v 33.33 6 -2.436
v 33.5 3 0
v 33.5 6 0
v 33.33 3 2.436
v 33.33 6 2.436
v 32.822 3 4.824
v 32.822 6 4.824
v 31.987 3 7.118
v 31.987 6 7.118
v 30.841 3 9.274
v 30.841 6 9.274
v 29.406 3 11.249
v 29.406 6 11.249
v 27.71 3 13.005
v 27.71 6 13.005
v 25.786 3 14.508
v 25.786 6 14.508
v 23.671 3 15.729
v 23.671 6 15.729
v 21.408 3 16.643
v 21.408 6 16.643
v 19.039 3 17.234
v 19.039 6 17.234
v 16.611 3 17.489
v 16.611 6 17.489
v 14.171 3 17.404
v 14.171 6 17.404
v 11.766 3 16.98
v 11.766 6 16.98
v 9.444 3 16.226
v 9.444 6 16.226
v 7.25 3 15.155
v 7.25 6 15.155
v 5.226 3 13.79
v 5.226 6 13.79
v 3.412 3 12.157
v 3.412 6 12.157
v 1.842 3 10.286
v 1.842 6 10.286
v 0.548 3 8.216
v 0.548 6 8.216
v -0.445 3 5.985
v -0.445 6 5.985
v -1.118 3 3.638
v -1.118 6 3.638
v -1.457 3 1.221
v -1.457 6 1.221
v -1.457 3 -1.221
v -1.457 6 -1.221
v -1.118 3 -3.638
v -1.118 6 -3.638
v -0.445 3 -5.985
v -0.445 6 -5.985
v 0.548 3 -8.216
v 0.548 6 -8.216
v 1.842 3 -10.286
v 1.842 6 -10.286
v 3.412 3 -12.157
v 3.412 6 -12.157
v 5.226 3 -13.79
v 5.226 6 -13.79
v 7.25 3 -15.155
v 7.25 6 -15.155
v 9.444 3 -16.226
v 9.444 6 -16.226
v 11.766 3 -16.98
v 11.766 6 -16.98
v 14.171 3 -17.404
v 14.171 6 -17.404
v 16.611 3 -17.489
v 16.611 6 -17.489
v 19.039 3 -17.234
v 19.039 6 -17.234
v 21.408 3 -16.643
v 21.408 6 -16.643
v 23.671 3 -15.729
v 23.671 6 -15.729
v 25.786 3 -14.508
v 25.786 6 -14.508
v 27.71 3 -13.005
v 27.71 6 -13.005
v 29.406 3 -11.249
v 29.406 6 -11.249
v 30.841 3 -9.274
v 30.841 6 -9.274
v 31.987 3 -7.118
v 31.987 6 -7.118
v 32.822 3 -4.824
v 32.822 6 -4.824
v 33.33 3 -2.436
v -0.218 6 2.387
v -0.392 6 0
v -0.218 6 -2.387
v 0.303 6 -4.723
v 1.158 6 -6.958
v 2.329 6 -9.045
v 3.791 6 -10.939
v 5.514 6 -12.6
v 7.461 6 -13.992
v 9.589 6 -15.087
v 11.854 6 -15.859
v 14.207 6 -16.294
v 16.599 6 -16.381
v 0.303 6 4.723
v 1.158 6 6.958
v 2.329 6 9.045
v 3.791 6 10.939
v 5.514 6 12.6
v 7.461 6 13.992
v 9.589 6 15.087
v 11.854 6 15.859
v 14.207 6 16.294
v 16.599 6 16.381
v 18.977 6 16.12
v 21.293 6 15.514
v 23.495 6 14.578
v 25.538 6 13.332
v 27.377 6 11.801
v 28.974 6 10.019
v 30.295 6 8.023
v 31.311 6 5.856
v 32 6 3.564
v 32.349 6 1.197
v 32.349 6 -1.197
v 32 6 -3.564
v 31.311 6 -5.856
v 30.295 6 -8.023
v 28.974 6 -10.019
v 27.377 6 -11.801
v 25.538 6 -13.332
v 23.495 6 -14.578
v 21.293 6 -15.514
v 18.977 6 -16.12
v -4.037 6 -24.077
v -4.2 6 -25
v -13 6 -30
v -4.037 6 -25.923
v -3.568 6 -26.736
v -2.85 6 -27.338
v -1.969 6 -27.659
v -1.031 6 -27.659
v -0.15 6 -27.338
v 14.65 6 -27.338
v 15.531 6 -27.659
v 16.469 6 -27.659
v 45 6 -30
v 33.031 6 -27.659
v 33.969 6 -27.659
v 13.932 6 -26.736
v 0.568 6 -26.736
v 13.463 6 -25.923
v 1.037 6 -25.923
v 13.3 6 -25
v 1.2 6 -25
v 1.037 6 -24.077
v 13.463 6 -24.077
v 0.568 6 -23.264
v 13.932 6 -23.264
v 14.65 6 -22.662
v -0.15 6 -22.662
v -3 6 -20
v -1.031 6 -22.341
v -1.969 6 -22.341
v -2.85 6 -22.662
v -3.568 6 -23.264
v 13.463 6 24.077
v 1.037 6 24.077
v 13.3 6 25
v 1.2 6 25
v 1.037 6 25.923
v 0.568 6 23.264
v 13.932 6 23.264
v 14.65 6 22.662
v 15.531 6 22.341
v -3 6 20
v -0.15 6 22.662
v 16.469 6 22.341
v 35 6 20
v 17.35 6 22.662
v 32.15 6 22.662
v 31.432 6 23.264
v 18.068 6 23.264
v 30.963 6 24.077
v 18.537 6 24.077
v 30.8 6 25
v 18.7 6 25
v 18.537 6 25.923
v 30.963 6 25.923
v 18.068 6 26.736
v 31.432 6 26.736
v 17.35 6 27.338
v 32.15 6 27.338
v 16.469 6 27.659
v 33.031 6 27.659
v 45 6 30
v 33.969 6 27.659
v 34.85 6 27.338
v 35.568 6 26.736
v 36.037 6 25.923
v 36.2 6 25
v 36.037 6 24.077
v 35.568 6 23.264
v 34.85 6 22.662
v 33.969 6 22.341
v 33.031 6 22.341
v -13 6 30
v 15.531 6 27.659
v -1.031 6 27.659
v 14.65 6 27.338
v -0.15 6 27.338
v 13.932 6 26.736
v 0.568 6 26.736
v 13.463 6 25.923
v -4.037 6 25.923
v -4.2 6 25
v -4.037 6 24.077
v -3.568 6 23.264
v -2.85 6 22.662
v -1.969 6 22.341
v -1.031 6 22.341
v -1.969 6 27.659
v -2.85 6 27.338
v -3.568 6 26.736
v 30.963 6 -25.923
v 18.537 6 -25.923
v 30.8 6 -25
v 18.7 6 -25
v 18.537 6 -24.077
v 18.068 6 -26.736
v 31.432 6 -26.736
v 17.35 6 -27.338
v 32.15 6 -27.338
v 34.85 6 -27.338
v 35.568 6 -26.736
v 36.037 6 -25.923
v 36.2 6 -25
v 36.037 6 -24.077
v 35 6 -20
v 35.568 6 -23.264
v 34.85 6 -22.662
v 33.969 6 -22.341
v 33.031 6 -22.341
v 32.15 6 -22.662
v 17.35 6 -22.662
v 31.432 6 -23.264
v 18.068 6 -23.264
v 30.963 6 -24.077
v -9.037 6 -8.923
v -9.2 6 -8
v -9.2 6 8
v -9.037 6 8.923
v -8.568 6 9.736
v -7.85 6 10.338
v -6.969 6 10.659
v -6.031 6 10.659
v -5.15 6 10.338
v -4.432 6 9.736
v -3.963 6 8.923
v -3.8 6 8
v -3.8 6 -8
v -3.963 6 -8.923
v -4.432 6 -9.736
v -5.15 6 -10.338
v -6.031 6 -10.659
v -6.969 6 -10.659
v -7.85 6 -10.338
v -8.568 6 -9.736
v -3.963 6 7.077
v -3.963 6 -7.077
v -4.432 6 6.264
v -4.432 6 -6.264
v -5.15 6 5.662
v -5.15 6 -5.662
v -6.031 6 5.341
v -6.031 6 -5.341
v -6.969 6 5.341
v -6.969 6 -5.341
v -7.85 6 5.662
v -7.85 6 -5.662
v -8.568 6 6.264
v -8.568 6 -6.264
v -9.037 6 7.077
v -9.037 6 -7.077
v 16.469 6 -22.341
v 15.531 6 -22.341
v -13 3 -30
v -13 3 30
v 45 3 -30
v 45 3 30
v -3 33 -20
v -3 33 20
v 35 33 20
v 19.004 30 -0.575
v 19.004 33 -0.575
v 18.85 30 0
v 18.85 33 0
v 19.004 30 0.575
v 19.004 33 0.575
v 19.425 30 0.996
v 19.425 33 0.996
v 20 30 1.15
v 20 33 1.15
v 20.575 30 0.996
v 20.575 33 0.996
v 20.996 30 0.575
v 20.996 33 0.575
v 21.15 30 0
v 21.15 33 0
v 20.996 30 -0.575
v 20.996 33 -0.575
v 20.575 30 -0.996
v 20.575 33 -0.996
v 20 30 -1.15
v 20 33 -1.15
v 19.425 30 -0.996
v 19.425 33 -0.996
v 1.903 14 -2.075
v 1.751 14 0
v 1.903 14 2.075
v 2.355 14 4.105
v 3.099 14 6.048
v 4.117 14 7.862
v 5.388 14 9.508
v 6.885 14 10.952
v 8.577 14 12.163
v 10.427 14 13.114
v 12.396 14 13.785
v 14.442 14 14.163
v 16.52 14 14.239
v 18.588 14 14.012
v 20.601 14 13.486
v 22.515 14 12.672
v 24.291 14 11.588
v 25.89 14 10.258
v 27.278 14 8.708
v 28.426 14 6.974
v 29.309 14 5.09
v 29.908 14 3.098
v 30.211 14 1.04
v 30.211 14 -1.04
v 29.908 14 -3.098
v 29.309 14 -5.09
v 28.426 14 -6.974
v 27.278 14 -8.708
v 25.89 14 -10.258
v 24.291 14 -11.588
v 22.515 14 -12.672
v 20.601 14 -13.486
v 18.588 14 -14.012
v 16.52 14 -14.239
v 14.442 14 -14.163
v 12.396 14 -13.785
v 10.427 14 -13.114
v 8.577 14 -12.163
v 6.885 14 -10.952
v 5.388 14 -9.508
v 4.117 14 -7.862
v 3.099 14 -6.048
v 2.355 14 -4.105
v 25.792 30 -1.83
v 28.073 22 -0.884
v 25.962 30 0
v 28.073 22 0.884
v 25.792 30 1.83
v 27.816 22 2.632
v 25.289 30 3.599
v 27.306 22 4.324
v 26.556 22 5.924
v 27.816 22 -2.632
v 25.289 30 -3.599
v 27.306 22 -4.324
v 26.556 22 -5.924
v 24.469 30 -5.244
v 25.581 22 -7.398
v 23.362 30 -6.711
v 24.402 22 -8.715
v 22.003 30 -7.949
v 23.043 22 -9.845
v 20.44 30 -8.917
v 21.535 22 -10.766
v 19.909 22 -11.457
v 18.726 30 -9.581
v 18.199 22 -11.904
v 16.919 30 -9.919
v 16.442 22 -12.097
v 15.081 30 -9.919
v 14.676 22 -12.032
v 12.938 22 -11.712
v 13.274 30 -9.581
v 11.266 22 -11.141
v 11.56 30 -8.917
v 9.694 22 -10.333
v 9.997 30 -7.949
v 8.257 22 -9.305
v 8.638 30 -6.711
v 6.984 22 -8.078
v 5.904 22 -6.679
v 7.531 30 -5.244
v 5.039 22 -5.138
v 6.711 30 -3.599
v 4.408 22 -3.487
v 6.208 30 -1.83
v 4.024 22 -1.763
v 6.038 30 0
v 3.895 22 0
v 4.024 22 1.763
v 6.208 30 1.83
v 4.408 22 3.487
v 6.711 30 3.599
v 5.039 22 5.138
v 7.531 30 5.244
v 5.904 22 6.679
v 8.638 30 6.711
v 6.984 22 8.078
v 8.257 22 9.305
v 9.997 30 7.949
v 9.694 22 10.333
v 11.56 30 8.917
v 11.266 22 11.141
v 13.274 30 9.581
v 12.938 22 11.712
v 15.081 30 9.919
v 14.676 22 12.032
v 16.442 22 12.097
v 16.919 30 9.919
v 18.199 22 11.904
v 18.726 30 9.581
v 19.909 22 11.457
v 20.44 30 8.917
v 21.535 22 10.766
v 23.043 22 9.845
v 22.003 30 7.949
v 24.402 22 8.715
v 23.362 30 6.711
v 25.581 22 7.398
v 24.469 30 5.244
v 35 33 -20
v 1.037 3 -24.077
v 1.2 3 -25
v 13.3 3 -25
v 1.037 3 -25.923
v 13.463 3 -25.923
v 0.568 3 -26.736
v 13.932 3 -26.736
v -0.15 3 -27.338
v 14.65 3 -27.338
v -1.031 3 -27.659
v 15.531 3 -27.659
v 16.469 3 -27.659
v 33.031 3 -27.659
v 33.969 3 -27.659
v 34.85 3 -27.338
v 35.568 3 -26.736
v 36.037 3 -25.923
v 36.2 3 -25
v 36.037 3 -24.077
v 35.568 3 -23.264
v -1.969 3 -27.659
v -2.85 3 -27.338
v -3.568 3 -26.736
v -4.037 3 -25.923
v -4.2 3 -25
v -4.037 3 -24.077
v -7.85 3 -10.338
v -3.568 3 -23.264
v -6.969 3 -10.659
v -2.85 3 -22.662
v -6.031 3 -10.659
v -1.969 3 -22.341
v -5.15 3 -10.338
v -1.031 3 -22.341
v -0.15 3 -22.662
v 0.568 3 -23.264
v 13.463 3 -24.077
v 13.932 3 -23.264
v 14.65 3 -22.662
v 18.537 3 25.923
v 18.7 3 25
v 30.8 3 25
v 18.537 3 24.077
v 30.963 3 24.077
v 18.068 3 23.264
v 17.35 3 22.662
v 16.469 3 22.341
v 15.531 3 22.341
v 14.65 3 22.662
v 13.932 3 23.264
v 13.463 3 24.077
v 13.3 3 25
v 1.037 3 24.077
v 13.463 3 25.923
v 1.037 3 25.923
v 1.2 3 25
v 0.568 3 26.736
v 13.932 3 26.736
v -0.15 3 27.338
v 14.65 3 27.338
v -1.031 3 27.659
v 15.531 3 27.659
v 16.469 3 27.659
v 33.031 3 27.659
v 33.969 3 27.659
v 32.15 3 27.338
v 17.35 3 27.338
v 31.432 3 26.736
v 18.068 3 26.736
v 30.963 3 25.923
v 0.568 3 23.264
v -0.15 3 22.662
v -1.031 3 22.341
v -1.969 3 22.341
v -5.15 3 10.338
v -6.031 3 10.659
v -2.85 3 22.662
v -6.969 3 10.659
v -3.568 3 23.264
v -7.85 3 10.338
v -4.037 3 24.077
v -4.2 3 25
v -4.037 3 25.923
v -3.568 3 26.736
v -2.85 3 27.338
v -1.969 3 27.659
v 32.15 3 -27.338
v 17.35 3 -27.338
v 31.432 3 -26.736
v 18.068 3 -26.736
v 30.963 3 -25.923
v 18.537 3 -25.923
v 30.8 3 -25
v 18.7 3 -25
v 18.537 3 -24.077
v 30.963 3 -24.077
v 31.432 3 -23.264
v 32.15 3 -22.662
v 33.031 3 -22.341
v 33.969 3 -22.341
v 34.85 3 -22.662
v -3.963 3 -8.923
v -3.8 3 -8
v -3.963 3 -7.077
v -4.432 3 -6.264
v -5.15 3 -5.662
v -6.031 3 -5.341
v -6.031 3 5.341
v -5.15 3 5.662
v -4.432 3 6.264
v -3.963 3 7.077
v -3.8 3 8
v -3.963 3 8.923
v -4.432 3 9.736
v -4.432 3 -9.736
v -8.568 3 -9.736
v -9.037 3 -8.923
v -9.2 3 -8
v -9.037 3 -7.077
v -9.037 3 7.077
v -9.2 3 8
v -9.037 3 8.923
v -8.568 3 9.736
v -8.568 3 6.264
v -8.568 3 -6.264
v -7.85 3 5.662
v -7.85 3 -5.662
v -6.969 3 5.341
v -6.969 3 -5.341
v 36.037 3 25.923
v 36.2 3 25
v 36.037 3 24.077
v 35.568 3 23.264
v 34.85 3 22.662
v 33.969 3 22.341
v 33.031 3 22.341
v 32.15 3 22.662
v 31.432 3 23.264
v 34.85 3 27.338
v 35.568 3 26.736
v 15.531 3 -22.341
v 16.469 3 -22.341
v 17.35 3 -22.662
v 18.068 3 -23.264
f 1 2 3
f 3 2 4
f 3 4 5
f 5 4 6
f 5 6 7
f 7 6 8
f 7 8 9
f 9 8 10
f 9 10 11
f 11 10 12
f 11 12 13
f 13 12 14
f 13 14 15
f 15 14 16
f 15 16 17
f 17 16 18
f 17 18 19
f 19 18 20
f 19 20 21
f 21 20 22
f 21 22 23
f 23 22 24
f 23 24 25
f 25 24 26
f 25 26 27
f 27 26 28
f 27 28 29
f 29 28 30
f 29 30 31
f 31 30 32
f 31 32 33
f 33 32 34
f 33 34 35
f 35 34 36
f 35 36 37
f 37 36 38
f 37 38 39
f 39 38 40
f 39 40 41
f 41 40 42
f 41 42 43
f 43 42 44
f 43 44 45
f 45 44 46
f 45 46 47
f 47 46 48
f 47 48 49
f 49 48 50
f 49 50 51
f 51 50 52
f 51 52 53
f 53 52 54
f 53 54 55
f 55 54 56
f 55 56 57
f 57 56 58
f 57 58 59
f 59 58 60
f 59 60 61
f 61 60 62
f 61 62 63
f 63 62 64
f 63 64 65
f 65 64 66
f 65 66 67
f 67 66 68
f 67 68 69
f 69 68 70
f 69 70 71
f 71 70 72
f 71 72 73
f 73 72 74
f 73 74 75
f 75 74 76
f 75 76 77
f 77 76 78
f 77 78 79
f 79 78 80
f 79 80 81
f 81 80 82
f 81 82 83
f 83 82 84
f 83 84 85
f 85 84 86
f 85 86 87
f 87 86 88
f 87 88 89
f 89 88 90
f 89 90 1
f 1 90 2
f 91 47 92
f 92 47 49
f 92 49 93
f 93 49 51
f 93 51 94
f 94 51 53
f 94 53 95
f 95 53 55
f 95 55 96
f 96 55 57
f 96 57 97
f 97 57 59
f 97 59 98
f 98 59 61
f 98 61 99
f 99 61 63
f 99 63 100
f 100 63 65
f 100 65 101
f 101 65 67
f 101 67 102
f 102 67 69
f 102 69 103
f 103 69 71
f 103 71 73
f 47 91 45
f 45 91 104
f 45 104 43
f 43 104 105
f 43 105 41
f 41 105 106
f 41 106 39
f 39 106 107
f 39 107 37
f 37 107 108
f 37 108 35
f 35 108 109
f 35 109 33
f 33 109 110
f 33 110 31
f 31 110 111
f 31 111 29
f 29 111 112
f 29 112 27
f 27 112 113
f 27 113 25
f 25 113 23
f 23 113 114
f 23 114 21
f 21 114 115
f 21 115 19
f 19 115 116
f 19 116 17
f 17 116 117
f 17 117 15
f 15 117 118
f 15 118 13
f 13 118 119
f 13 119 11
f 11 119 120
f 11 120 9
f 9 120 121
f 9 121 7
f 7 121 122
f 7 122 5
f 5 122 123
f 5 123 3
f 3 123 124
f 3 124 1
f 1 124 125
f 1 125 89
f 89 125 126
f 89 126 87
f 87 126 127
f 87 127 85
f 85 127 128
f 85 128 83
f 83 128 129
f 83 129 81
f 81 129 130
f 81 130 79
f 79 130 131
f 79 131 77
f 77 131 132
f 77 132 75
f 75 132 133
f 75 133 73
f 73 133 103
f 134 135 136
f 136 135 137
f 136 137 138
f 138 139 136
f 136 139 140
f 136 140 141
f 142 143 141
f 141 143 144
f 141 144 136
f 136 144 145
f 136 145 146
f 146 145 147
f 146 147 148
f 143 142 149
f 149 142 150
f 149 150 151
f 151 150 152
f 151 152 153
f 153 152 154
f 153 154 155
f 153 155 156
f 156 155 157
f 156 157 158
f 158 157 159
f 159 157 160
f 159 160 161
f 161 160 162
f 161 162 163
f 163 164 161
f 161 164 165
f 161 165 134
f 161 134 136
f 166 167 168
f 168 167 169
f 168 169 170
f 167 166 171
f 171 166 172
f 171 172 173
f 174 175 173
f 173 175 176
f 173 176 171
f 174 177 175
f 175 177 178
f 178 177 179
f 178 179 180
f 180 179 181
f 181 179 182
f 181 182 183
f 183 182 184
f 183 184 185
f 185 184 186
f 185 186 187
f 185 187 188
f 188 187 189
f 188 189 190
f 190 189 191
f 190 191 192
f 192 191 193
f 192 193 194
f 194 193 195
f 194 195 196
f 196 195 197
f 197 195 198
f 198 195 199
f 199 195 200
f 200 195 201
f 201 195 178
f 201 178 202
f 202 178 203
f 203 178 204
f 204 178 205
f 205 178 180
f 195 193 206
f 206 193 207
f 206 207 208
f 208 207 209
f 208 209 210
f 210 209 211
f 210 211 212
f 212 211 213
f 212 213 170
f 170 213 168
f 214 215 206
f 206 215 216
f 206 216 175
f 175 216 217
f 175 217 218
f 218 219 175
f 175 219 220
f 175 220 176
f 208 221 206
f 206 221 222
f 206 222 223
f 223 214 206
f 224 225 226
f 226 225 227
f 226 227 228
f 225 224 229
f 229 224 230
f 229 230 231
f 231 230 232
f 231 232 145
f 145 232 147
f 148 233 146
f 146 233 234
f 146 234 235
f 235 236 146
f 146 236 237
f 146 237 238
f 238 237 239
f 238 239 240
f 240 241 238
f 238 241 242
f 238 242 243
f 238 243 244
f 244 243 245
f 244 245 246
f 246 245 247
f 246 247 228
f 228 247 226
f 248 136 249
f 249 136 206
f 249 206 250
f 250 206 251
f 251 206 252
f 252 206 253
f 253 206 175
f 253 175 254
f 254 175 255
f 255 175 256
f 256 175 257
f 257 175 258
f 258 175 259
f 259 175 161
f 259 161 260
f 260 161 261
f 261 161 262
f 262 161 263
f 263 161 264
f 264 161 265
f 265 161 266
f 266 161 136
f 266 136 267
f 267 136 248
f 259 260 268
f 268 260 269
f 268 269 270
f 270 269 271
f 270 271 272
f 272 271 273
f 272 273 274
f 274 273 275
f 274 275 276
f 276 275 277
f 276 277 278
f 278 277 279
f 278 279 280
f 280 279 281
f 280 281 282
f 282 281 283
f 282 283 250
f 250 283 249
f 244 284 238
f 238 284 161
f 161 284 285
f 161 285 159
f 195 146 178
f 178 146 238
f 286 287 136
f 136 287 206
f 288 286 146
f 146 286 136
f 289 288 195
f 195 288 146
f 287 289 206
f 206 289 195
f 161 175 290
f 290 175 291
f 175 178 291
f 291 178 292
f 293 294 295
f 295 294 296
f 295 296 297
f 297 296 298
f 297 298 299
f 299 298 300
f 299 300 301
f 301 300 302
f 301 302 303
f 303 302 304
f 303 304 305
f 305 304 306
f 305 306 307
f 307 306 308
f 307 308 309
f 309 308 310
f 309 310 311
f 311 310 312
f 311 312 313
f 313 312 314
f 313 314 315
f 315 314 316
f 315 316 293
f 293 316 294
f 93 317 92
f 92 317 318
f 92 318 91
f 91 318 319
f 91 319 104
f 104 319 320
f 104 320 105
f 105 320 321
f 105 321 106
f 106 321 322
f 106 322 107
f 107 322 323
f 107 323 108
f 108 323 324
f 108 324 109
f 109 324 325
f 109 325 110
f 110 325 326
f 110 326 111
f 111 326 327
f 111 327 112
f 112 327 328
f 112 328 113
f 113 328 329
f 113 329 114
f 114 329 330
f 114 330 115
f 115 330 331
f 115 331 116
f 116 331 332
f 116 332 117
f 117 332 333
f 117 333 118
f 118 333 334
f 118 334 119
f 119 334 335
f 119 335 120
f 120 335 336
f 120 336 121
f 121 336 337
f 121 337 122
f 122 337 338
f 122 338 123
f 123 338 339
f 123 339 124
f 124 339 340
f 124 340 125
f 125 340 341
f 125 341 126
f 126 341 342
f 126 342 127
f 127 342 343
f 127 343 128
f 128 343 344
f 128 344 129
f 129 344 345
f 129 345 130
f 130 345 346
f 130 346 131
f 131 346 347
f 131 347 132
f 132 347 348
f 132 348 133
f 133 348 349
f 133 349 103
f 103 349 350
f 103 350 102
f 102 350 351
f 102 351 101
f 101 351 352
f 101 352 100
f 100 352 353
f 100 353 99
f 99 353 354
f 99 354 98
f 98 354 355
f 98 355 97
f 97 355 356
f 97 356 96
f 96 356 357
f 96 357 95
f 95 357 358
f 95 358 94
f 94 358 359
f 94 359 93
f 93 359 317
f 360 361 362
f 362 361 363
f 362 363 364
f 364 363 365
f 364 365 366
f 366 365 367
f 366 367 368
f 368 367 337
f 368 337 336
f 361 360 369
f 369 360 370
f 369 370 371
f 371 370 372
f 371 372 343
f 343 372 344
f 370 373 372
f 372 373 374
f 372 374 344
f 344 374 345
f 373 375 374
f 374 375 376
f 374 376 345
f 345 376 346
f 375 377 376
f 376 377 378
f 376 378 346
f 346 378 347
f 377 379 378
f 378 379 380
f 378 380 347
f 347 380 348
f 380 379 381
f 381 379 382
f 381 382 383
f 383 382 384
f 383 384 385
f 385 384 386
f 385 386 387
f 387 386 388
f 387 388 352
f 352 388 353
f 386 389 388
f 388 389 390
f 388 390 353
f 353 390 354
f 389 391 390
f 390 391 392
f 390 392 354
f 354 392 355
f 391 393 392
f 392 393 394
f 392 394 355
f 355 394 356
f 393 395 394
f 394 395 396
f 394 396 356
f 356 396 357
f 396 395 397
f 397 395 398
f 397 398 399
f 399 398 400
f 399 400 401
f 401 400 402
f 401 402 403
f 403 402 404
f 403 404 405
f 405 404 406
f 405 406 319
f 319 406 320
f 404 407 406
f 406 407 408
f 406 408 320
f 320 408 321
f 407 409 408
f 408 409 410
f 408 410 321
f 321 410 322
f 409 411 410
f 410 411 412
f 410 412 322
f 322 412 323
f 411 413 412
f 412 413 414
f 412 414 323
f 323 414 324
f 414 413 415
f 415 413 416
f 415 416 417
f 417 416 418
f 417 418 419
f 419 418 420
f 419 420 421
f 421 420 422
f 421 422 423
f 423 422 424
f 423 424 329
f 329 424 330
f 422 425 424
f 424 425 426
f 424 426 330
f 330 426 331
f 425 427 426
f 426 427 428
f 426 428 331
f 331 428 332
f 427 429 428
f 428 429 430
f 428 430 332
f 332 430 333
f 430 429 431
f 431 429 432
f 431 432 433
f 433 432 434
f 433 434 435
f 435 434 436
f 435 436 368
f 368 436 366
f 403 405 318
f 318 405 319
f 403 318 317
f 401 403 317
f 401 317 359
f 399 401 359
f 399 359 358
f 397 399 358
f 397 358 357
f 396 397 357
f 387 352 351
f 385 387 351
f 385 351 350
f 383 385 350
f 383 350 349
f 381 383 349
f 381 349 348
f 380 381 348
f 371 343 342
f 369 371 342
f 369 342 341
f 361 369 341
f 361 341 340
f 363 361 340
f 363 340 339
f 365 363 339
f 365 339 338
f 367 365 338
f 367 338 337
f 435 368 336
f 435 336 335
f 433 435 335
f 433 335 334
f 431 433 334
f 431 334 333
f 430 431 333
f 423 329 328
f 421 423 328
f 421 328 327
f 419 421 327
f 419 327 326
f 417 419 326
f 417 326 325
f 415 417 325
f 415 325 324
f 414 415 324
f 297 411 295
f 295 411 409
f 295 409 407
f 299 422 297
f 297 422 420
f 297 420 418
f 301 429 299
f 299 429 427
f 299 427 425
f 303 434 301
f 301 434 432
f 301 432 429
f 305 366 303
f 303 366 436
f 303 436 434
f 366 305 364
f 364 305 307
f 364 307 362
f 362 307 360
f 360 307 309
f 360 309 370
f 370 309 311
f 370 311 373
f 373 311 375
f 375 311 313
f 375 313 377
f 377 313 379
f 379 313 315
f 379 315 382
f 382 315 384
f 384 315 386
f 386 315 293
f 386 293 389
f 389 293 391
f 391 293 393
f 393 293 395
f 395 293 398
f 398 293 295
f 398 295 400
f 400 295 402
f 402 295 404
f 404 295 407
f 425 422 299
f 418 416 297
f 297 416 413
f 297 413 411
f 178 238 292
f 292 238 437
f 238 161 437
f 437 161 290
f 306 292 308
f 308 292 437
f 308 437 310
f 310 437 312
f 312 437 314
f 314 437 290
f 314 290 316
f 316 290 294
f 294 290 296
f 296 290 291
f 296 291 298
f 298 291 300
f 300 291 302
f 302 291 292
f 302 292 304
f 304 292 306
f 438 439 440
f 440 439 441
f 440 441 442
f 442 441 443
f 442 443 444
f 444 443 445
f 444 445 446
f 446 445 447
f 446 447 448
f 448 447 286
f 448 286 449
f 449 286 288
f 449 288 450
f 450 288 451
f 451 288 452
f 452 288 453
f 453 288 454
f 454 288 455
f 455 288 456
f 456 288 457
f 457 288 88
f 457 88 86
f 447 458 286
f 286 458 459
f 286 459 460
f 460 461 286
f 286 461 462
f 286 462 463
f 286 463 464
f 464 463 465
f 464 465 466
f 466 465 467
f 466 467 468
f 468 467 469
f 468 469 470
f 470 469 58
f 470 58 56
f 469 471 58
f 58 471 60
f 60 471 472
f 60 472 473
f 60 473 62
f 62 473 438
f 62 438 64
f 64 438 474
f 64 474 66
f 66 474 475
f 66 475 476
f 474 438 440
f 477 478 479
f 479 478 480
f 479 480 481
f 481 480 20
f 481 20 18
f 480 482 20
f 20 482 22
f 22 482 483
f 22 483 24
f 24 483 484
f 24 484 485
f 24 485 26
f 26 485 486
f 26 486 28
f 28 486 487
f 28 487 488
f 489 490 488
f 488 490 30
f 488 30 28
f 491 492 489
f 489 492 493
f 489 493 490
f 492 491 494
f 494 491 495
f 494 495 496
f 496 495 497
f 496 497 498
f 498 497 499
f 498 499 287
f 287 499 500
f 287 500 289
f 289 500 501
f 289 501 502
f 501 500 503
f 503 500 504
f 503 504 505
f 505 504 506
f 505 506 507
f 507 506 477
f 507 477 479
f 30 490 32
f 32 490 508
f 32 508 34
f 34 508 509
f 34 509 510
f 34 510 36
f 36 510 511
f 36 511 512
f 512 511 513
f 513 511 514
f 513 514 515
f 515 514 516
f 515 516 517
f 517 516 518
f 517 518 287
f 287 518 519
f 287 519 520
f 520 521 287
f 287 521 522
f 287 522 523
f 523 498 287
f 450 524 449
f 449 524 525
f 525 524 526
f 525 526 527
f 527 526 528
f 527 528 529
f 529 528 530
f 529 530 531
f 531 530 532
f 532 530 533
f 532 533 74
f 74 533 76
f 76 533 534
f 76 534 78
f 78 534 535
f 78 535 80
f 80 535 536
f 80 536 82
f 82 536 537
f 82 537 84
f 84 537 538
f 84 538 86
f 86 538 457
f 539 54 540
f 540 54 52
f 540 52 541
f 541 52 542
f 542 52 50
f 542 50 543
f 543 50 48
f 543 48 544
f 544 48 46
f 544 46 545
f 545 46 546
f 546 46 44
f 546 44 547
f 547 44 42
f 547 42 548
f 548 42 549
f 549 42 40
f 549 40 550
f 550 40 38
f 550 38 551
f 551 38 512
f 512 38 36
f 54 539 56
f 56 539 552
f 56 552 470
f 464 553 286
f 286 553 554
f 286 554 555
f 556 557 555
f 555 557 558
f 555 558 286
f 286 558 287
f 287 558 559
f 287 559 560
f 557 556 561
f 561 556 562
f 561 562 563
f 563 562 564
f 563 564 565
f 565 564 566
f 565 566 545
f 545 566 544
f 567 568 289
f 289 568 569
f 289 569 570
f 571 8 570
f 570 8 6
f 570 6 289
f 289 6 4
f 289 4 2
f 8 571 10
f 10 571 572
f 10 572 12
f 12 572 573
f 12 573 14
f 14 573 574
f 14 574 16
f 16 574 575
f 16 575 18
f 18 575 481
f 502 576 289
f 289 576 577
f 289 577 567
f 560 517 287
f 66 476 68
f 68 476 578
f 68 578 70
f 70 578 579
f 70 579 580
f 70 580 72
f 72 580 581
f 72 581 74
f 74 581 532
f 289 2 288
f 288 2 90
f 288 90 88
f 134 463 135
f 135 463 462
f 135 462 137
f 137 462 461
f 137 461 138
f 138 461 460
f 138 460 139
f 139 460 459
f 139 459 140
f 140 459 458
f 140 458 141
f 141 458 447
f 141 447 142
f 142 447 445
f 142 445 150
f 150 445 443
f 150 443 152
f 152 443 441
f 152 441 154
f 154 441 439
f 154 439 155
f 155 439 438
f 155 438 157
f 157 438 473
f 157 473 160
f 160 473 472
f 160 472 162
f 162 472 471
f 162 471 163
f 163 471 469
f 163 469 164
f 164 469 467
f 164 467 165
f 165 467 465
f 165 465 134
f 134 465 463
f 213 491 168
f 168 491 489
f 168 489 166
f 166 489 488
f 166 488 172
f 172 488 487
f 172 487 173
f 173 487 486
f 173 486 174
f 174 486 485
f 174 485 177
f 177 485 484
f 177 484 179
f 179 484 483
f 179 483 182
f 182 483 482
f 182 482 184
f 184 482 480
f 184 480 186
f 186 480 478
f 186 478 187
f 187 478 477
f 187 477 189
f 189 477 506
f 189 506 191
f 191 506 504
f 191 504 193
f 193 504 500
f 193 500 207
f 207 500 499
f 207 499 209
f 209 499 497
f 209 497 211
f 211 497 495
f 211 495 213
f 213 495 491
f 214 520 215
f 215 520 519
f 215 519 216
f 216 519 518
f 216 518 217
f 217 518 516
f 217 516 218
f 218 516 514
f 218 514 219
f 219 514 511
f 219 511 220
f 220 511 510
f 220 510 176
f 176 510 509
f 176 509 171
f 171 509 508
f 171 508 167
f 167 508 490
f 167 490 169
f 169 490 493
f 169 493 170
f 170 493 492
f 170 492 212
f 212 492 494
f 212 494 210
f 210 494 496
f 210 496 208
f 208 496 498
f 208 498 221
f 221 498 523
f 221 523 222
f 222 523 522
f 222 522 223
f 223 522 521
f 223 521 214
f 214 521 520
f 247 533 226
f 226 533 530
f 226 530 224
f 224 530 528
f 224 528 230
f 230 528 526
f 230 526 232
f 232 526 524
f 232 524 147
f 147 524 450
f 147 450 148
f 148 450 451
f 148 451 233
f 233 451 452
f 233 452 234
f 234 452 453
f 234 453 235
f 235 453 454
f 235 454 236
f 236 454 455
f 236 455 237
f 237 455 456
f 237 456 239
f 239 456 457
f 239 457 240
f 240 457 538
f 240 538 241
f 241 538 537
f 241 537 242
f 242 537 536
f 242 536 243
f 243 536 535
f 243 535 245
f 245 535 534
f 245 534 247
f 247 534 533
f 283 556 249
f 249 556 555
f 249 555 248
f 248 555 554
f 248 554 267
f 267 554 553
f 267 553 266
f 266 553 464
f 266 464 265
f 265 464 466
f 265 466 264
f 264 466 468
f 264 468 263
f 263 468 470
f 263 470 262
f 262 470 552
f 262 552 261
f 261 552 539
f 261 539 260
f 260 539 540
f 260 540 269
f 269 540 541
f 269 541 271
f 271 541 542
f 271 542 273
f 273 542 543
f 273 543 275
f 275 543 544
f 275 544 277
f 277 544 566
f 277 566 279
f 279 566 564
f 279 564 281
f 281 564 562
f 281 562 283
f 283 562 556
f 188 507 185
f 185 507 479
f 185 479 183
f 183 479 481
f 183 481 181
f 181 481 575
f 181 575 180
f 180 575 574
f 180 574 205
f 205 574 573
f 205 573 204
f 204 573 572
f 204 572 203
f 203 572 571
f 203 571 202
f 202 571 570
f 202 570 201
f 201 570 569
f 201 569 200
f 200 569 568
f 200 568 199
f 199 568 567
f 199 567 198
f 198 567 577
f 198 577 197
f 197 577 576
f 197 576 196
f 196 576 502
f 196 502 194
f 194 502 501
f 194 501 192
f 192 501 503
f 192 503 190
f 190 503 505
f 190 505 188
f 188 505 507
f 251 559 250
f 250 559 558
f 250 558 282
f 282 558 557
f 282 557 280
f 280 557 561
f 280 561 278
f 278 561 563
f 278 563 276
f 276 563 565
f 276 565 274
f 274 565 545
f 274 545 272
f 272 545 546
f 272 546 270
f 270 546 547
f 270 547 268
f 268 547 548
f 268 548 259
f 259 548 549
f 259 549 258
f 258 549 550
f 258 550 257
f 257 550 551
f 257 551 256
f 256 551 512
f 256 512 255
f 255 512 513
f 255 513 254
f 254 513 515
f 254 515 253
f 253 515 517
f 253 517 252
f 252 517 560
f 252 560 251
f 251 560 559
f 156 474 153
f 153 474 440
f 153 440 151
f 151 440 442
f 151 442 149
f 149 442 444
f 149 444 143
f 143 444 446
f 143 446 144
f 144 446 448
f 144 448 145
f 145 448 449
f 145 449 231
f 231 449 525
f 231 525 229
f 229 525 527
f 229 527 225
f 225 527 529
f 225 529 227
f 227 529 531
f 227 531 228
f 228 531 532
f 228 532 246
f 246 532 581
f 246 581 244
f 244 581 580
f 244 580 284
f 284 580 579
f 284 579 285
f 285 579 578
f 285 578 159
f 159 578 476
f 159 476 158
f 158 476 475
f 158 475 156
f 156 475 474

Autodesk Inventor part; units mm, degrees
ref_plane "YZ Plane" through (0, 0, 0) normal (1, 0, 0) x (0, 1, 0)
ref_plane "XZ Plane" through (0, 0, 0) normal (0, 1, 0) x (-1, 0, 0)
ref_plane "XY Plane" through (0, 0, 0) normal (0, 0, 1) x (1, 0, 0)
ref_plane "Work Plane5" through (0, 3, 0) normal (0, 1, 0) x (1, 0, 0)
sketch "Sketch45" plane through (0, 3, 0) normal (0, 1, 0) x (1, 0, 0)
  line L0 (35, -20) -> (-3, -20)
  line L1 (-3, -20) -> (-3, 20)
  line L2 (-3, 20) -> (35, 20)
  line L3 (35, 20) -> (35, -20)
  point P0 (0, 0)
  dimension "d142" = 38
  dimension "d143" = 40
extrude "Extrusion34" add sketch "Sketch45" along normal blind 30
ref_plane "Work Plane2" through (0, 0, 0) normal (0, -1, 0) x (1, 0, 0)
sketch "Sketch47" plane through (0, 0, 0) normal (0, -1, 0) x (1, 0, 0)
  circle A0 centre (16, 0) radius 18
  point P0 (0, 0)
  dimension "d146" = 36
extrude "Extrusion35" cut sketch "Sketch47" against normal blind 30 draft -15
ref_plane "Work Plane1" through (0, 3, 0) normal (0, 1, 0) x (1, 0, 0)
sketch "Sketch74" plane through (0, 33, 0) normal (0, 1, 0) x (1, 0, 0)
  circle A0 centre (20, 0) radius 1.15
  point P0 (0, 0)
  dimension "d210" = 2.3
extrude "Extrusion51" cut sketch "Sketch74" against normal blind 10
sketch "Sketch77" plane through (0, 3, 0) normal (0, -1, 0) x (1, 0, 0)
  circle A0 centre (16, 0) radius 17.5
  point P0 (0, 0)
  dimension "d219" = 35
sketch "Sketch78" plane through (0, 3, 0) normal (0, -1, 0) x (1, 0, 0)
  line L0 (45, -30) -> (-13, -30)
  line L1 (-13, -30) -> (-13, 30)
  line L2 (-13, 30) -> (45, 30)
  line L3 (45, 30) -> (45, -30)
  line L4 (45, -30) -> (-13, 30) construction
  line L5 (-13, -30) -> (45, 30) construction
  point P0 (0, 0)
  point P1 (16, 0)
  dimension "d220" = 58
  dimension "d221" = 60
extrude "Extrusion53" add sketch "Sketch78" against normal blind 3
extrude "Extrusion54" cut sketch "Sketch77" against normal blind 3
sketch "Sketch81" plane through (0, 3, 0) normal (0, -1, 0) x (1, 0, 0)
  circle A0 centre (33.5, -25) radius 2.7
  line L0 (-13, -30) -> (45, -30) projected
  line L1 (45, -30) -> (45, 30) projected
  circle A1 centre (16, -25) radius 2.7
  circle A2 centre (-1.5, -25) radius 2.7
  circle A3 centre (-6.5, -8) radius 2.7
  circle A4 centre (-6.5, 8) radius 2.7
  circle A5 centre (-1.5, 25) radius 2.7
  circle A6 centre (16, 25) radius 2.7
  circle A7 centre (33.5, 25) radius 2.7
  point P0 (0, 0)
  dimension "mag_D" = 5.4
  dimension "d232" = 5
  dimension "d233" = 11.5
  dimension "d234" = 5.4
  dimension "d235" = 17.5
  dimension "d236" = 5.4
  dimension "d237" = 17.5
  dimension "d238" = 5.4
  dimension "d239" = 5
  dimension "d240" = 17
  dimension "d241" = 5.4
  dimension "d242" = 16
  dimension "d243" = 5.4
  dimension "d244" = 17
  dimension "d245" = 5.4
  dimension "d246" = 17.5
  dimension "d247" = 5.4
  dimension "d248" = 17.5
  dimension "d249" = 5
extrude "Extrusion56" cut sketch "Sketch81" against normal blind 30
equation "\"d234\" = mag_D"
equation "\"d236\" = mag_D"
equation "\"d237\" = d235"
equation "\"d238\" = mag_D"
equation "\"d241\" = mag_D"
equation "\"d243\" = mag_D"
equation "\"d244\" = d240"
equation "\"d245\" = mag_D"
equation "\"d246\" = d235"
equation "\"d247\" = mag_D"
equation "\"d248\" = d235"
equation "\"d249\" = d239"
properties part number "liquid_port_v02"
